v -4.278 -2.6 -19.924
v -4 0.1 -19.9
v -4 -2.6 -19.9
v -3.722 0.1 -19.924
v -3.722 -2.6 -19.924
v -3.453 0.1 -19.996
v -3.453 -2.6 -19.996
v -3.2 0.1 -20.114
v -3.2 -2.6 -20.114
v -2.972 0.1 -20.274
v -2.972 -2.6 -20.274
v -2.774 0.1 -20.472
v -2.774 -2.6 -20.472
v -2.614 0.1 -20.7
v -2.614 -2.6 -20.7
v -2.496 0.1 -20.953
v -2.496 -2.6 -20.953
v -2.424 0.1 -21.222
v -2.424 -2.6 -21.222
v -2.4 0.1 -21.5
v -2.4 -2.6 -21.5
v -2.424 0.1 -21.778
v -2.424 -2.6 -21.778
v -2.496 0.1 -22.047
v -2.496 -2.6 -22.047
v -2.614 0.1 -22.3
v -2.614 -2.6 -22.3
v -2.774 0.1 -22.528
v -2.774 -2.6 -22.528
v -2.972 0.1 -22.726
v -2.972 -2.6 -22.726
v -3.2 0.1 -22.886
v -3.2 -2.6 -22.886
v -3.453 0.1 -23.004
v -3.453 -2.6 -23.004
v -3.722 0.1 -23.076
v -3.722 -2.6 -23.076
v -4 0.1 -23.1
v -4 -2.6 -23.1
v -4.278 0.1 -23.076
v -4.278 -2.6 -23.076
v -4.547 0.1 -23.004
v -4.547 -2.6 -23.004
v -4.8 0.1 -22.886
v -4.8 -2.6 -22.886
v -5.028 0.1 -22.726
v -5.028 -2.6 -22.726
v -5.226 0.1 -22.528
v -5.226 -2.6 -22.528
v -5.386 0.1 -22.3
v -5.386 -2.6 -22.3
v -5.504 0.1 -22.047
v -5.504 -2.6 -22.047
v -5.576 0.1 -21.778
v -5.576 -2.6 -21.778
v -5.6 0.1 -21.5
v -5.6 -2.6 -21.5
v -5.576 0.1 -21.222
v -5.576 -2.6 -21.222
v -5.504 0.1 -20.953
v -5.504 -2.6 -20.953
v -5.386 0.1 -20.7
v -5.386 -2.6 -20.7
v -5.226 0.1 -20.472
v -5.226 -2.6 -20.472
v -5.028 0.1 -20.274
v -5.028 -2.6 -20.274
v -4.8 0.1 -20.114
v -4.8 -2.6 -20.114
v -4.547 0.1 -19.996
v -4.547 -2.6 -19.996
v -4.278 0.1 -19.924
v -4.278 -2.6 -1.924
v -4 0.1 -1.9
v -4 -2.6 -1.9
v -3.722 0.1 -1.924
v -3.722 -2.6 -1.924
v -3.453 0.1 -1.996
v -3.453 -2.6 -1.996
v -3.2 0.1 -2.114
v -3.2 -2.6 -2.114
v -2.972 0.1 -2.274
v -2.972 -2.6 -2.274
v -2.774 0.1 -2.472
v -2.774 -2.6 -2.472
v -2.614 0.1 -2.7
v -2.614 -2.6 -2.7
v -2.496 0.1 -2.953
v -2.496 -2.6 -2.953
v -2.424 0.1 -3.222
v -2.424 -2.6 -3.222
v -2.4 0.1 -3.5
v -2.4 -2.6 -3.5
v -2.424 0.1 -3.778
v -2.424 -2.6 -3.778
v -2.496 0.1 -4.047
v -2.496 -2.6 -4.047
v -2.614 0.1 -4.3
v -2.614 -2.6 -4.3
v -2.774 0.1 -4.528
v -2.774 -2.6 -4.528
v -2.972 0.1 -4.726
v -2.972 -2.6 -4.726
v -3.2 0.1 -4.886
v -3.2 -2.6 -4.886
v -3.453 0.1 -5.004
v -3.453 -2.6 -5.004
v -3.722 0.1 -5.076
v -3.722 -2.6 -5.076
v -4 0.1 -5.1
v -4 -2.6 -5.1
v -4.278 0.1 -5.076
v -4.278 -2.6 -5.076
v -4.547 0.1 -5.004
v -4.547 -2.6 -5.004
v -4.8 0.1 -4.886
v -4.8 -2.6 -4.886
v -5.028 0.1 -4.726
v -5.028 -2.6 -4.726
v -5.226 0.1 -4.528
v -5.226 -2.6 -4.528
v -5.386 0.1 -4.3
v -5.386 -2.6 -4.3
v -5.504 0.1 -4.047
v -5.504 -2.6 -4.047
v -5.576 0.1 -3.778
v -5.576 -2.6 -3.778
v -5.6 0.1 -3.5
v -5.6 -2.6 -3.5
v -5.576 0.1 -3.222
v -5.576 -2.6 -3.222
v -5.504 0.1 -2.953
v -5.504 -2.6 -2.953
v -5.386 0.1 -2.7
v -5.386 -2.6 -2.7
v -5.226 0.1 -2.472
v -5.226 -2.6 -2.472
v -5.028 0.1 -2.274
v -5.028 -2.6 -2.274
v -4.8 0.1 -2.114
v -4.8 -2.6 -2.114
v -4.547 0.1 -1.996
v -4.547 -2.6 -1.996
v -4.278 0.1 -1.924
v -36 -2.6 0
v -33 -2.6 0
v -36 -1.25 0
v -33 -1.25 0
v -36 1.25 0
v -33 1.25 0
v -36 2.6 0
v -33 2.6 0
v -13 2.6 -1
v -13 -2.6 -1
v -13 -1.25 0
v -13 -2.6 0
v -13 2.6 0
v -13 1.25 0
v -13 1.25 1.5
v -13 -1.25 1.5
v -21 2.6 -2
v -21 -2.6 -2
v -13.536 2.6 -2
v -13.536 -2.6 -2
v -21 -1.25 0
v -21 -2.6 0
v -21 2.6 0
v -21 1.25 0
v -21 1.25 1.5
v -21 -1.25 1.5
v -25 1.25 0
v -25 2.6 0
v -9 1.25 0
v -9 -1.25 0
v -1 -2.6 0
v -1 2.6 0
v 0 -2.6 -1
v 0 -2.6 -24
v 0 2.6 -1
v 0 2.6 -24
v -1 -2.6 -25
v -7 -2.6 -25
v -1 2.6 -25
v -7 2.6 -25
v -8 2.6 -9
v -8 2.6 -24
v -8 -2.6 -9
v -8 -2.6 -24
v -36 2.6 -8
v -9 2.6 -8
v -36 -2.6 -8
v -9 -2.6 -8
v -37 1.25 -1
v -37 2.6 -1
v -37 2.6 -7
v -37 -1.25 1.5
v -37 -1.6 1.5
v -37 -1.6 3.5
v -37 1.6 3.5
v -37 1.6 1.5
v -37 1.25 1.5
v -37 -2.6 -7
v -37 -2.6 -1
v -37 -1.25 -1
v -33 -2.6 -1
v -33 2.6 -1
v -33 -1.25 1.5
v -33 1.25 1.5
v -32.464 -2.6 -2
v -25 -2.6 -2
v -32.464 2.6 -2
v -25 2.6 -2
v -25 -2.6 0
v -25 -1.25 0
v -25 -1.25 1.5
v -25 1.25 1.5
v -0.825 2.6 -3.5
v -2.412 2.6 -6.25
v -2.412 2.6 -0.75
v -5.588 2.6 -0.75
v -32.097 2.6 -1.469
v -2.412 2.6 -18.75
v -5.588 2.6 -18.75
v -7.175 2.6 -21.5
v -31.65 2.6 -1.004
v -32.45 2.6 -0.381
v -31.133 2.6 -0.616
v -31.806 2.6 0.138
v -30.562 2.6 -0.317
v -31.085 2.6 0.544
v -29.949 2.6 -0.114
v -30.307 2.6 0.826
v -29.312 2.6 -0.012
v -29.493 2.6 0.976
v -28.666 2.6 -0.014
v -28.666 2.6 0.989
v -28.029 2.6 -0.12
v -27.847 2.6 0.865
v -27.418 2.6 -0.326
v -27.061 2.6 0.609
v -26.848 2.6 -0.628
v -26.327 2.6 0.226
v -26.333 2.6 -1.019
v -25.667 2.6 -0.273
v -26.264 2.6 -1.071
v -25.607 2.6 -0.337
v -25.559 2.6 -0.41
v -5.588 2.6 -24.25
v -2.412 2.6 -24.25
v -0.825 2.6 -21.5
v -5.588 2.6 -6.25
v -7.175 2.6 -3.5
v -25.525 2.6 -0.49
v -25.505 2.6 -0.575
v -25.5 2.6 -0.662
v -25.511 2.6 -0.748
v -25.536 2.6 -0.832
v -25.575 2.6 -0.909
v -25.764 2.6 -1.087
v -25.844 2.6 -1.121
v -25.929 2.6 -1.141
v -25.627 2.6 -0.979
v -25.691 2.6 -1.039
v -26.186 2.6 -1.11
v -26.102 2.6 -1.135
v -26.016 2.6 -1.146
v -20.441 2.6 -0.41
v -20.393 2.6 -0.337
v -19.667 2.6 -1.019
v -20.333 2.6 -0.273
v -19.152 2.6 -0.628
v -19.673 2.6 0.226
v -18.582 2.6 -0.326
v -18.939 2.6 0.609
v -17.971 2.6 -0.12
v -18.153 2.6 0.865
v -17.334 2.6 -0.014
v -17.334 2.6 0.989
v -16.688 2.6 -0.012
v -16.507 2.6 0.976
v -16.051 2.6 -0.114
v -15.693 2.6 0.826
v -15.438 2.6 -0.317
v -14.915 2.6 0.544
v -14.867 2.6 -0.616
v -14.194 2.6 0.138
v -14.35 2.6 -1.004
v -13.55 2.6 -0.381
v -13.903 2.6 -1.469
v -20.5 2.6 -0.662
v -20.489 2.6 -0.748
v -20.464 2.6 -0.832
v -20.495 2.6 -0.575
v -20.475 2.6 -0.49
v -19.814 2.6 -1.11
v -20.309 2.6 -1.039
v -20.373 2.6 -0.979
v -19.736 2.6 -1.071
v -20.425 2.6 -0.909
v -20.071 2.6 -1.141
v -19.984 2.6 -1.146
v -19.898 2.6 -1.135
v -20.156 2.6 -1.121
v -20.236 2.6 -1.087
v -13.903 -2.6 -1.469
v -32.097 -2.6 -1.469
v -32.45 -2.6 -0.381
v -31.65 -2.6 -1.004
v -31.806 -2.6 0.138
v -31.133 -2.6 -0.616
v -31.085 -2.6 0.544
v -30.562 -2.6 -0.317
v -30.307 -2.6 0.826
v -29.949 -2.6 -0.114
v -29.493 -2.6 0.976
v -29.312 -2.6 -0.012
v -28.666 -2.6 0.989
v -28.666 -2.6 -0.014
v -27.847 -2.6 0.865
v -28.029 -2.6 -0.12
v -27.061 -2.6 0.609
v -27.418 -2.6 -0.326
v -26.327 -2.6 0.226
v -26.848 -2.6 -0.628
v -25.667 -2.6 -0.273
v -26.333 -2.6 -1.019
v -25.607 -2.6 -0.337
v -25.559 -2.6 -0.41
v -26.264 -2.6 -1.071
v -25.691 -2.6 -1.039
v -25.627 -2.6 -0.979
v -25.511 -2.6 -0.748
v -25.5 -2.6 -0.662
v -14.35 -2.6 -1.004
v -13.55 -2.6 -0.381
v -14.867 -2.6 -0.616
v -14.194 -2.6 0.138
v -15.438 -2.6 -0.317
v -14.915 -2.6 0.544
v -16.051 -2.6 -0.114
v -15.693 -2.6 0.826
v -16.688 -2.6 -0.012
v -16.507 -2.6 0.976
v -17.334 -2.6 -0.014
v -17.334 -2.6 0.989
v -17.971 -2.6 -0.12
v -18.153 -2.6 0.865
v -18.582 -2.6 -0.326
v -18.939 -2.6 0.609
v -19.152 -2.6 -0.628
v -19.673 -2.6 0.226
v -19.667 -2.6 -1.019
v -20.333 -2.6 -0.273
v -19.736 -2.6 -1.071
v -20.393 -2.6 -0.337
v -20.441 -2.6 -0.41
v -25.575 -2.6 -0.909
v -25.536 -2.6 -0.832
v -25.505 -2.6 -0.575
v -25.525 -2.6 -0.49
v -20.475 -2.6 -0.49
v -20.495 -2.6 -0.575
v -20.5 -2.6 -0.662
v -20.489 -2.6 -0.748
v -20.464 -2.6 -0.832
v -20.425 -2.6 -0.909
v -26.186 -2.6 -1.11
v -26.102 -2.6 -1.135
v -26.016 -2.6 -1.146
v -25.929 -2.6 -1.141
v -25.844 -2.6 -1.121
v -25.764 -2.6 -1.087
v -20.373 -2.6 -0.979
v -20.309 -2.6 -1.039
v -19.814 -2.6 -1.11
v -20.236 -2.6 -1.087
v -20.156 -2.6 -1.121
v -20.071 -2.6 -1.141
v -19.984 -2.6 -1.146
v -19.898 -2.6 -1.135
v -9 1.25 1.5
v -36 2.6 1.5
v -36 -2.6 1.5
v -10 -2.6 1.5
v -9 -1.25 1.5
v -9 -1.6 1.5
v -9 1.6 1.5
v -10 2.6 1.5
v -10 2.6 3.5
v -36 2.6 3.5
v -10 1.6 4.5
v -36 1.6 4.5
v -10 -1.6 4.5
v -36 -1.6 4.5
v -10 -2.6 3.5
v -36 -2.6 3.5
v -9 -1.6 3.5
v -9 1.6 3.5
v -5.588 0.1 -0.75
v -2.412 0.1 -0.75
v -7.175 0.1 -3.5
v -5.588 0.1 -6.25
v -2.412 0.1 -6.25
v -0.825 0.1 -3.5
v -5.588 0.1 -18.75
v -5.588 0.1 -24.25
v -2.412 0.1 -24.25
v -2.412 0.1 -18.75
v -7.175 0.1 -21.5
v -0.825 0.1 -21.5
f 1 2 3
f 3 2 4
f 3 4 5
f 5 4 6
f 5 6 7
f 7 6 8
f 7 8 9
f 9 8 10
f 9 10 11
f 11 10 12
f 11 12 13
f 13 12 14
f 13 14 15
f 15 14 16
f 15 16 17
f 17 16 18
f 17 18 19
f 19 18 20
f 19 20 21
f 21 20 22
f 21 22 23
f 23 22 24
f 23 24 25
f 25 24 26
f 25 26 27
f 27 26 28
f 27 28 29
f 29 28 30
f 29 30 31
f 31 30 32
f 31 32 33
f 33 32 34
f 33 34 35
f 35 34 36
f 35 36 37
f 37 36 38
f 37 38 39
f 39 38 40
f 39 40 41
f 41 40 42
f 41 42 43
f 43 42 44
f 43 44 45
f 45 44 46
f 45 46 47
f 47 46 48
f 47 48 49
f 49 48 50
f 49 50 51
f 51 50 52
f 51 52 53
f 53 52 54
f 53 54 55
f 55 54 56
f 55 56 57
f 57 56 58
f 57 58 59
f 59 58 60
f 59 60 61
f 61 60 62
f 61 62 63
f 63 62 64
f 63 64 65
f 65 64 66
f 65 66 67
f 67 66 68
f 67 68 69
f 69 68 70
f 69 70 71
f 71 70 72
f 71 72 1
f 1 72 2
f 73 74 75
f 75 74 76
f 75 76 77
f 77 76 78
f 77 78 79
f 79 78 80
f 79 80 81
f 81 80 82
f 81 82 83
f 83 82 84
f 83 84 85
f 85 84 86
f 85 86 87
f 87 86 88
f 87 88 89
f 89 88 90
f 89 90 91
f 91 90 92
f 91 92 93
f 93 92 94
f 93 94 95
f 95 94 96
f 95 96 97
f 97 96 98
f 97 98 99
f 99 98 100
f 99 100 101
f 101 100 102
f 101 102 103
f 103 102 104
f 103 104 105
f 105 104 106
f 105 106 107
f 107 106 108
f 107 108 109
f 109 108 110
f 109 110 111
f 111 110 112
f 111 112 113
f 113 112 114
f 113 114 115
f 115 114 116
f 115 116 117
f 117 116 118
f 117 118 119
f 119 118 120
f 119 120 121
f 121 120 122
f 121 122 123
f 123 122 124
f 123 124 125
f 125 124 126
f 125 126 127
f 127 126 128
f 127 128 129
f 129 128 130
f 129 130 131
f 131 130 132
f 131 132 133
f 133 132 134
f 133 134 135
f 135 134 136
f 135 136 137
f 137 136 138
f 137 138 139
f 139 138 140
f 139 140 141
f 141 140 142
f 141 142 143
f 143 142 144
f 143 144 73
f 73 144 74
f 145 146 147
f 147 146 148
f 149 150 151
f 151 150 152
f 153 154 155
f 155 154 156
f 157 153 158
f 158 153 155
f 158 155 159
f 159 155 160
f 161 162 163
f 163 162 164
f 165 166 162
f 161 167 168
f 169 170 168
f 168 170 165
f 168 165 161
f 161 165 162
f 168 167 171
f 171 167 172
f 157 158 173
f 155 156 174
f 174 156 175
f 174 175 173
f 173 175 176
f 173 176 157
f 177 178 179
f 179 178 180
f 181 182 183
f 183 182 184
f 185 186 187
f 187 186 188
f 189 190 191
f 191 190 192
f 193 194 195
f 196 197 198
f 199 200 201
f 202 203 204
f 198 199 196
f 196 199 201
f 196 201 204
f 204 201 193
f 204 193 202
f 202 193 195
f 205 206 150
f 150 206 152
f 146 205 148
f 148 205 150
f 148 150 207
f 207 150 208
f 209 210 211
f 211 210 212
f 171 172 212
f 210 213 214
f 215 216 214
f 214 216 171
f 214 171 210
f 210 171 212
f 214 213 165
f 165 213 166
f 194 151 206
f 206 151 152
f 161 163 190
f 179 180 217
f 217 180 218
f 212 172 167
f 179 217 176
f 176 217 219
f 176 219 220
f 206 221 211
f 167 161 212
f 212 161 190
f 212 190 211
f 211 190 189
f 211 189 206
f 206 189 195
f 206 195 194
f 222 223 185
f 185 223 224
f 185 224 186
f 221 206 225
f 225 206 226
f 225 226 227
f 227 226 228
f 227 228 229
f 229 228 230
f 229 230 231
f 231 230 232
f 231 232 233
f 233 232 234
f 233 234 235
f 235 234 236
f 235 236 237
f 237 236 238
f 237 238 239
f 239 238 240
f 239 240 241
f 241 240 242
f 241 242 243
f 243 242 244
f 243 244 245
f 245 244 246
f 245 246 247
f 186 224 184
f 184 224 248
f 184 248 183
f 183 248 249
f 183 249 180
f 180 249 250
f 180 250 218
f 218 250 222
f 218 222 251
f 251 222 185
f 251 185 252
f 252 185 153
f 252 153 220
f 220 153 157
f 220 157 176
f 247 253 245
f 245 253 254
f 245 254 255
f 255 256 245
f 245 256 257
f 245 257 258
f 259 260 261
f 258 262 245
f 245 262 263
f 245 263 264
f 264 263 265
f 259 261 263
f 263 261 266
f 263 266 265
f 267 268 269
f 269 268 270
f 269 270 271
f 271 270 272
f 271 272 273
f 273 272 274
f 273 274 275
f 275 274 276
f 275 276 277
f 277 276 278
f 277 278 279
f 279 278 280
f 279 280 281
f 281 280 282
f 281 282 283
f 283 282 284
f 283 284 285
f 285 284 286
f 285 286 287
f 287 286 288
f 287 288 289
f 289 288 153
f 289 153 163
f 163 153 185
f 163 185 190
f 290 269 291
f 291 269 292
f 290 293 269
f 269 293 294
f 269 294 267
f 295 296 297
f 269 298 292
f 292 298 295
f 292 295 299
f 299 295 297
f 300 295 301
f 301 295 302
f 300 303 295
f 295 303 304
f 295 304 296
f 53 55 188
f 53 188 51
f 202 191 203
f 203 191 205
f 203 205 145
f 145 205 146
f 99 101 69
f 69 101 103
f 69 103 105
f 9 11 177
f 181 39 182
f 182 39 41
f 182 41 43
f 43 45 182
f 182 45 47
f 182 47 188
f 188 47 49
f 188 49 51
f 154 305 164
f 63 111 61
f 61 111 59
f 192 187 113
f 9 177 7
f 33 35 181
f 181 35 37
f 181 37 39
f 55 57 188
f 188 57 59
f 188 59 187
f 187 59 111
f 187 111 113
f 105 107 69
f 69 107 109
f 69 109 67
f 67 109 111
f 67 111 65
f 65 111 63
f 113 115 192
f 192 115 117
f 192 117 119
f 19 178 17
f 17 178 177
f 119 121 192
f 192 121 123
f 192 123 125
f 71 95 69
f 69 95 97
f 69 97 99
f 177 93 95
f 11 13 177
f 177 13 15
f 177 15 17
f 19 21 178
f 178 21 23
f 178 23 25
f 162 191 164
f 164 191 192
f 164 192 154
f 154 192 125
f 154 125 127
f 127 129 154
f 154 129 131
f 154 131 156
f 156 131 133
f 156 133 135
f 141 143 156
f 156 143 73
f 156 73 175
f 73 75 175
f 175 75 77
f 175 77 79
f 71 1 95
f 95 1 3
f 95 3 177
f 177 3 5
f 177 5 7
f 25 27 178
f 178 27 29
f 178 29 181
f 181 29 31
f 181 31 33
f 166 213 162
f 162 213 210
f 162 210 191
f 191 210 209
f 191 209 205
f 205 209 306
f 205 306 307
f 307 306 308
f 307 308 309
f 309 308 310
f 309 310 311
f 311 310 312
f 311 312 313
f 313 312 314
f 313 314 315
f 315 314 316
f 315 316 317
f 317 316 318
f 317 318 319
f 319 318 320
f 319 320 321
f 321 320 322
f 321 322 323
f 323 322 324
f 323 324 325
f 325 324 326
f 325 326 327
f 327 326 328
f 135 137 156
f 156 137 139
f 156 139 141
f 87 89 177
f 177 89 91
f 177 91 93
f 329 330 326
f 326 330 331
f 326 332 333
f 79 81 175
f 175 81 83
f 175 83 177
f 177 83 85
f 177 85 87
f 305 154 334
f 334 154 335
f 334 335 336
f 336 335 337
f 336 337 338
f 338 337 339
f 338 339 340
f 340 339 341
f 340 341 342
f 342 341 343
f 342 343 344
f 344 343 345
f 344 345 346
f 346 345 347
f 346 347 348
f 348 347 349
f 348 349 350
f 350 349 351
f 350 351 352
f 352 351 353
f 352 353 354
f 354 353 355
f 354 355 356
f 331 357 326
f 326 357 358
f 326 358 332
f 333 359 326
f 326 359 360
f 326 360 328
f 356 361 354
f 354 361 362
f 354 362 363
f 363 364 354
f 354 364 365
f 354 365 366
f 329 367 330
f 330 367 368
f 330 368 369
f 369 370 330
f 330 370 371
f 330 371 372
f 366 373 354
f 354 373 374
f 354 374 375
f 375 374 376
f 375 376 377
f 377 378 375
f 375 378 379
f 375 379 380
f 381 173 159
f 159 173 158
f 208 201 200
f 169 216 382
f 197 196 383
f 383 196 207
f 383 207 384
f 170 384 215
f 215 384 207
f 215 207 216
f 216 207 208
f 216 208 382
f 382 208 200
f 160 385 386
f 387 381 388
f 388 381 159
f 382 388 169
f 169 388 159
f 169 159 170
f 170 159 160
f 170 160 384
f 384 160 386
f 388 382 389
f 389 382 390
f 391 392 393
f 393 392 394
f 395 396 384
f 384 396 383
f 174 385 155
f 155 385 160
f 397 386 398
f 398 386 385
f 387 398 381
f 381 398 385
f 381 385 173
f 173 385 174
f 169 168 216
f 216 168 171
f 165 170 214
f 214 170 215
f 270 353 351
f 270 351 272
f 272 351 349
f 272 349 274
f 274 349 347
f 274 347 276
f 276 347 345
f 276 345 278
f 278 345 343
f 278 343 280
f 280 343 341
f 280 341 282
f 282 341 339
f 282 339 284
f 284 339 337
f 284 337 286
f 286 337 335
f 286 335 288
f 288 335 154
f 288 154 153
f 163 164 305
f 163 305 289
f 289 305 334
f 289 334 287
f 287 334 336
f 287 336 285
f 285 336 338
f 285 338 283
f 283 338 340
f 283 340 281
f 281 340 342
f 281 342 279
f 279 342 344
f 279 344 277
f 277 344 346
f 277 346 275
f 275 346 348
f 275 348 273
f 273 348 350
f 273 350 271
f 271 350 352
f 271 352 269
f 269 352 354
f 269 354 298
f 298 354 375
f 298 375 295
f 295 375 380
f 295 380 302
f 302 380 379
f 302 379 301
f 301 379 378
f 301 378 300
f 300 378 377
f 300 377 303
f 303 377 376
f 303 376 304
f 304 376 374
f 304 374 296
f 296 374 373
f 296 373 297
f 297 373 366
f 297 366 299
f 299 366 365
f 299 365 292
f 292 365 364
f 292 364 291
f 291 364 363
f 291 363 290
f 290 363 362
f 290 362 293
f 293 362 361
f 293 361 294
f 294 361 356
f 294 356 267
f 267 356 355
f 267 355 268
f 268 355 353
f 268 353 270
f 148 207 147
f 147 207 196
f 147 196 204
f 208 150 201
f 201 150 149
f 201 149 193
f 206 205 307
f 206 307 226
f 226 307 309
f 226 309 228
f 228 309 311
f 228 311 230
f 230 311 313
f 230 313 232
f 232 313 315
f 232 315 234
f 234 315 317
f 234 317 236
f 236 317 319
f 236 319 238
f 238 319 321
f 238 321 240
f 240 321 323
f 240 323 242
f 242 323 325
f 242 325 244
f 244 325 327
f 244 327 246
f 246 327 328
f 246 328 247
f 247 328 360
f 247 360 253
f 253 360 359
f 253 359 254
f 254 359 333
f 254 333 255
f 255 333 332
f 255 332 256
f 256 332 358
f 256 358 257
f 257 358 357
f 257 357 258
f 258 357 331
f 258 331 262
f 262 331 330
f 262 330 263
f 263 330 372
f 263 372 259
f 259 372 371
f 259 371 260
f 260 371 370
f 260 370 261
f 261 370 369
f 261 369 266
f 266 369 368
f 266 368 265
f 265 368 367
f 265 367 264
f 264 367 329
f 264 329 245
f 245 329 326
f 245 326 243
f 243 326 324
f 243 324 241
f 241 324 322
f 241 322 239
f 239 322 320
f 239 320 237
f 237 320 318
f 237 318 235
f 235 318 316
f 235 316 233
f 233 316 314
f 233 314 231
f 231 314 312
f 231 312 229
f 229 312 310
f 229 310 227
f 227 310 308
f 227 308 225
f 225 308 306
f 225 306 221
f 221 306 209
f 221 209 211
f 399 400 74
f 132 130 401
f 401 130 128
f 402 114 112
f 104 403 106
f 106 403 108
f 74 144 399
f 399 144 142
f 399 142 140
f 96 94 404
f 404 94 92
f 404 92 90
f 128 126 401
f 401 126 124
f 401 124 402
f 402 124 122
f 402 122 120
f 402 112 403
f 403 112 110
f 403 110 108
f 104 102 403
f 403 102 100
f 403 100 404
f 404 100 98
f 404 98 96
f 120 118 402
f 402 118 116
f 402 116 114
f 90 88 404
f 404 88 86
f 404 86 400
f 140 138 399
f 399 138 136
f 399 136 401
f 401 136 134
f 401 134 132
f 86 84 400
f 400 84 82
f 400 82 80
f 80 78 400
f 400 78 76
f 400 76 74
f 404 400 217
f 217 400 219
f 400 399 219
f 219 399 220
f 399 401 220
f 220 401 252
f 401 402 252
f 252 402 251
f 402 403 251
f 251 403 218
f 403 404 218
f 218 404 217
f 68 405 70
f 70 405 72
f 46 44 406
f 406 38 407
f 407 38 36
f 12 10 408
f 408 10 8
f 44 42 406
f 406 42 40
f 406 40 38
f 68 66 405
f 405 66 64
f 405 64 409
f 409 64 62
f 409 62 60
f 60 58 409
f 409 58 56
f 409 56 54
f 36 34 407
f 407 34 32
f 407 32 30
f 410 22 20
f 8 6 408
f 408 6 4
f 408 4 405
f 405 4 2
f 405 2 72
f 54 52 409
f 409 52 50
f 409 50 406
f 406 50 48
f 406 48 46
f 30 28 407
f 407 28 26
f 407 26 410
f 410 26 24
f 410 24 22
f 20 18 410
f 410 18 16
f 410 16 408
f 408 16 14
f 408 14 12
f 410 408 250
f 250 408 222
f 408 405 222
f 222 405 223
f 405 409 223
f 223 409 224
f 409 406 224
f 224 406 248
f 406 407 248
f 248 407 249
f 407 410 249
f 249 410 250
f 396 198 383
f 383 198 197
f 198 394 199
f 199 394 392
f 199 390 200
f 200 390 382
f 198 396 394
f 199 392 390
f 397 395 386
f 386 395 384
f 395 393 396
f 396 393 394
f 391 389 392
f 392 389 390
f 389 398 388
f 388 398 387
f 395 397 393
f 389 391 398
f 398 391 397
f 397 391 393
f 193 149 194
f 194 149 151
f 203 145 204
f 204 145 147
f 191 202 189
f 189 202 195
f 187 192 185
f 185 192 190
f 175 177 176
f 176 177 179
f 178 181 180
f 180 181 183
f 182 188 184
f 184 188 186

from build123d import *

# Parameters (mm, degrees)
BOSS_EXTRUDE1_DEPTH = 2.6
BOSS_EXTRUDE2_DEPTH = 4
BOSS_EXTRUDE3_DEPTH = 4
SKETCH4_W           = 3
SKETCH4_H           = 5.2
BOSS_EXTRUDE4_DEPTH = 8
BOSS_EXTRUDE5_DEPTH = 2.6
SKETCH6_R           = 1.6
CUT_EXTRUDE1_DEPTH  = 6.2
CUT_EXTRUDE2_DEPTH  = 2.5
CHAMFER1_SIZE       = 1


with BuildPart() as part:
    # Sketch1 → Boss-Extrude1 (new body, symmetric)
    with BuildSketch(Plane(origin=(0, 0, 0), x_dir=(1, 0, 0), z_dir=(0, 1, 0))):
        Polygon((0, 0), (0, 25), (-8, 25), (-8, 8), (-37, 8), (-37, 0), (-33, 0), (-33, 2), (-25, 2), (-25, 0), (-21, 0), (-21, 2), (-13, 2), (-13, 0), align=None)
    extrude(amount=BOSS_EXTRUDE1_DEPTH, both=True)

    # Sketch2 → Boss-Extrude2 (add)
    with BuildSketch(Plane.ZY.offset(13)):
        Polygon((1.5, -1.25), (1.5, -2.6), (4.5, -2.6), (4.5, 2.6), (1.5, 2.6), (1.5, 1.25), (0, 1.25), (0, -1.25), align=None)
    boss_extrude2 = extrude(amount=-BOSS_EXTRUDE2_DEPTH)

    # Sketch3 → Boss-Extrude3 (add)
    with BuildSketch(Plane.ZY.offset(25)):
        Polygon((0, 1.25), (0, -1.25), (1.5, -1.25), (1.5, -2.6), (4.5, -2.6), (4.5, 2.6), (1.5, 2.6), (1.5, 1.25), align=None)
    extrude(amount=-BOSS_EXTRUDE3_DEPTH)

    # Sketch4 → Boss-Extrude4 (add)
    with BuildSketch(Plane.ZY.offset(13)):
        with Locations((3, 0)):
            Rectangle(SKETCH4_W, SKETCH4_H)
    boss_extrude4 = extrude(amount=BOSS_EXTRUDE4_DEPTH)

    # Sketch5 → Boss-Extrude5 (add, symmetric)
    with BuildSketch(Plane(origin=(0, 0, 0), x_dir=(1, 0, 0), z_dir=(0, 1, 0))):
        with BuildLine():
            Line((-13, 1), (-13, 2))
            Line((-13, 2), (-13.535898385, 2))
            ThreePointArc((-13.535898385, 2), (-16.36772326, 0.050287843), (-19.666666667, 1.01857603))
            ThreePointArc((-19.666666667, 1.01857603), (-20.372677996, 0.979231367), (-20.333333333, 0.273220038))
            ThreePointArc((-20.333333333, 0.273220038), (-16.506884, -0.975624243), (-13, 1))
        make_face()
    boss_extrude5 = extrude(amount=BOSS_EXTRUDE5_DEPTH, both=True)

    # Mirror1: Boss-Extrude2, Boss-Extrude4, Boss-Extrude5 across plane
    add(boss_extrude2.mirror(Plane.ZY.offset(23)))
    add(boss_extrude4.mirror(Plane.ZY.offset(23)))
    add(boss_extrude5.mirror(Plane.ZY.offset(23)))

    # Sketch6 → Cut-Extrude1 (cut, through all)
    with BuildSketch(Plane(origin=(0, 2.6, 0), x_dir=(1, 0, 0), z_dir=(0, 1, 0))):
        with Locations((-4, 21.5)):
            Circle(SKETCH6_R)
        with Locations((-4, 3.5)):
            Circle(SKETCH6_R)
    extrude(amount=-CUT_EXTRUDE1_DEPTH, mode=Mode.SUBTRACT)

    # Sketch7 → Cut-Extrude2 (cut)
    with BuildSketch(Plane(origin=(0, 2.6, 0), x_dir=(1, 0, 0), z_dir=(0, 1, 0))):
        Polygon((-0.824573519, 3.5), (-2.41228676, 6.25), (-5.58771324, 6.25), (-7.175426481, 3.5), (-5.58771324, 0.75), (-2.41228676, 0.75), align=None)
        Polygon((-0.824573519, 21.5), (-2.41228676, 24.25), (-5.58771324, 24.25), (-7.175426481, 21.5), (-5.58771324, 18.75), (-2.41228676, 18.75), align=None)
    extrude(amount=-CUT_EXTRUDE2_DEPTH, mode=Mode.SUBTRACT)

    # Chamfer1
    chamfer1_edges = [part.edges().sort_by_distance(p)[0] for p in [
        (-9, 0, 4.5),
        (-9, -2.6, 3),
        (-23, -2.6, 4.5),
        (-9, 2.6, 3),
        (-23, 2.6, 4.5),
        (-37, -2.6, 3),
        (-37, 2.6, 3),
        (-37, 0, 4.5),
        (-37, 1.925, 0),
        (-37, -1.925, 0),
        (-37, 0, -8),
        (-8, 0, -8),
        (0, 0, 0),
        (0, 0, -25),
        (-8, 0, -25),
    ]]
    chamfer(chamfer1_edges, length=CHAMFER1_SIZE)


solid = part.part
